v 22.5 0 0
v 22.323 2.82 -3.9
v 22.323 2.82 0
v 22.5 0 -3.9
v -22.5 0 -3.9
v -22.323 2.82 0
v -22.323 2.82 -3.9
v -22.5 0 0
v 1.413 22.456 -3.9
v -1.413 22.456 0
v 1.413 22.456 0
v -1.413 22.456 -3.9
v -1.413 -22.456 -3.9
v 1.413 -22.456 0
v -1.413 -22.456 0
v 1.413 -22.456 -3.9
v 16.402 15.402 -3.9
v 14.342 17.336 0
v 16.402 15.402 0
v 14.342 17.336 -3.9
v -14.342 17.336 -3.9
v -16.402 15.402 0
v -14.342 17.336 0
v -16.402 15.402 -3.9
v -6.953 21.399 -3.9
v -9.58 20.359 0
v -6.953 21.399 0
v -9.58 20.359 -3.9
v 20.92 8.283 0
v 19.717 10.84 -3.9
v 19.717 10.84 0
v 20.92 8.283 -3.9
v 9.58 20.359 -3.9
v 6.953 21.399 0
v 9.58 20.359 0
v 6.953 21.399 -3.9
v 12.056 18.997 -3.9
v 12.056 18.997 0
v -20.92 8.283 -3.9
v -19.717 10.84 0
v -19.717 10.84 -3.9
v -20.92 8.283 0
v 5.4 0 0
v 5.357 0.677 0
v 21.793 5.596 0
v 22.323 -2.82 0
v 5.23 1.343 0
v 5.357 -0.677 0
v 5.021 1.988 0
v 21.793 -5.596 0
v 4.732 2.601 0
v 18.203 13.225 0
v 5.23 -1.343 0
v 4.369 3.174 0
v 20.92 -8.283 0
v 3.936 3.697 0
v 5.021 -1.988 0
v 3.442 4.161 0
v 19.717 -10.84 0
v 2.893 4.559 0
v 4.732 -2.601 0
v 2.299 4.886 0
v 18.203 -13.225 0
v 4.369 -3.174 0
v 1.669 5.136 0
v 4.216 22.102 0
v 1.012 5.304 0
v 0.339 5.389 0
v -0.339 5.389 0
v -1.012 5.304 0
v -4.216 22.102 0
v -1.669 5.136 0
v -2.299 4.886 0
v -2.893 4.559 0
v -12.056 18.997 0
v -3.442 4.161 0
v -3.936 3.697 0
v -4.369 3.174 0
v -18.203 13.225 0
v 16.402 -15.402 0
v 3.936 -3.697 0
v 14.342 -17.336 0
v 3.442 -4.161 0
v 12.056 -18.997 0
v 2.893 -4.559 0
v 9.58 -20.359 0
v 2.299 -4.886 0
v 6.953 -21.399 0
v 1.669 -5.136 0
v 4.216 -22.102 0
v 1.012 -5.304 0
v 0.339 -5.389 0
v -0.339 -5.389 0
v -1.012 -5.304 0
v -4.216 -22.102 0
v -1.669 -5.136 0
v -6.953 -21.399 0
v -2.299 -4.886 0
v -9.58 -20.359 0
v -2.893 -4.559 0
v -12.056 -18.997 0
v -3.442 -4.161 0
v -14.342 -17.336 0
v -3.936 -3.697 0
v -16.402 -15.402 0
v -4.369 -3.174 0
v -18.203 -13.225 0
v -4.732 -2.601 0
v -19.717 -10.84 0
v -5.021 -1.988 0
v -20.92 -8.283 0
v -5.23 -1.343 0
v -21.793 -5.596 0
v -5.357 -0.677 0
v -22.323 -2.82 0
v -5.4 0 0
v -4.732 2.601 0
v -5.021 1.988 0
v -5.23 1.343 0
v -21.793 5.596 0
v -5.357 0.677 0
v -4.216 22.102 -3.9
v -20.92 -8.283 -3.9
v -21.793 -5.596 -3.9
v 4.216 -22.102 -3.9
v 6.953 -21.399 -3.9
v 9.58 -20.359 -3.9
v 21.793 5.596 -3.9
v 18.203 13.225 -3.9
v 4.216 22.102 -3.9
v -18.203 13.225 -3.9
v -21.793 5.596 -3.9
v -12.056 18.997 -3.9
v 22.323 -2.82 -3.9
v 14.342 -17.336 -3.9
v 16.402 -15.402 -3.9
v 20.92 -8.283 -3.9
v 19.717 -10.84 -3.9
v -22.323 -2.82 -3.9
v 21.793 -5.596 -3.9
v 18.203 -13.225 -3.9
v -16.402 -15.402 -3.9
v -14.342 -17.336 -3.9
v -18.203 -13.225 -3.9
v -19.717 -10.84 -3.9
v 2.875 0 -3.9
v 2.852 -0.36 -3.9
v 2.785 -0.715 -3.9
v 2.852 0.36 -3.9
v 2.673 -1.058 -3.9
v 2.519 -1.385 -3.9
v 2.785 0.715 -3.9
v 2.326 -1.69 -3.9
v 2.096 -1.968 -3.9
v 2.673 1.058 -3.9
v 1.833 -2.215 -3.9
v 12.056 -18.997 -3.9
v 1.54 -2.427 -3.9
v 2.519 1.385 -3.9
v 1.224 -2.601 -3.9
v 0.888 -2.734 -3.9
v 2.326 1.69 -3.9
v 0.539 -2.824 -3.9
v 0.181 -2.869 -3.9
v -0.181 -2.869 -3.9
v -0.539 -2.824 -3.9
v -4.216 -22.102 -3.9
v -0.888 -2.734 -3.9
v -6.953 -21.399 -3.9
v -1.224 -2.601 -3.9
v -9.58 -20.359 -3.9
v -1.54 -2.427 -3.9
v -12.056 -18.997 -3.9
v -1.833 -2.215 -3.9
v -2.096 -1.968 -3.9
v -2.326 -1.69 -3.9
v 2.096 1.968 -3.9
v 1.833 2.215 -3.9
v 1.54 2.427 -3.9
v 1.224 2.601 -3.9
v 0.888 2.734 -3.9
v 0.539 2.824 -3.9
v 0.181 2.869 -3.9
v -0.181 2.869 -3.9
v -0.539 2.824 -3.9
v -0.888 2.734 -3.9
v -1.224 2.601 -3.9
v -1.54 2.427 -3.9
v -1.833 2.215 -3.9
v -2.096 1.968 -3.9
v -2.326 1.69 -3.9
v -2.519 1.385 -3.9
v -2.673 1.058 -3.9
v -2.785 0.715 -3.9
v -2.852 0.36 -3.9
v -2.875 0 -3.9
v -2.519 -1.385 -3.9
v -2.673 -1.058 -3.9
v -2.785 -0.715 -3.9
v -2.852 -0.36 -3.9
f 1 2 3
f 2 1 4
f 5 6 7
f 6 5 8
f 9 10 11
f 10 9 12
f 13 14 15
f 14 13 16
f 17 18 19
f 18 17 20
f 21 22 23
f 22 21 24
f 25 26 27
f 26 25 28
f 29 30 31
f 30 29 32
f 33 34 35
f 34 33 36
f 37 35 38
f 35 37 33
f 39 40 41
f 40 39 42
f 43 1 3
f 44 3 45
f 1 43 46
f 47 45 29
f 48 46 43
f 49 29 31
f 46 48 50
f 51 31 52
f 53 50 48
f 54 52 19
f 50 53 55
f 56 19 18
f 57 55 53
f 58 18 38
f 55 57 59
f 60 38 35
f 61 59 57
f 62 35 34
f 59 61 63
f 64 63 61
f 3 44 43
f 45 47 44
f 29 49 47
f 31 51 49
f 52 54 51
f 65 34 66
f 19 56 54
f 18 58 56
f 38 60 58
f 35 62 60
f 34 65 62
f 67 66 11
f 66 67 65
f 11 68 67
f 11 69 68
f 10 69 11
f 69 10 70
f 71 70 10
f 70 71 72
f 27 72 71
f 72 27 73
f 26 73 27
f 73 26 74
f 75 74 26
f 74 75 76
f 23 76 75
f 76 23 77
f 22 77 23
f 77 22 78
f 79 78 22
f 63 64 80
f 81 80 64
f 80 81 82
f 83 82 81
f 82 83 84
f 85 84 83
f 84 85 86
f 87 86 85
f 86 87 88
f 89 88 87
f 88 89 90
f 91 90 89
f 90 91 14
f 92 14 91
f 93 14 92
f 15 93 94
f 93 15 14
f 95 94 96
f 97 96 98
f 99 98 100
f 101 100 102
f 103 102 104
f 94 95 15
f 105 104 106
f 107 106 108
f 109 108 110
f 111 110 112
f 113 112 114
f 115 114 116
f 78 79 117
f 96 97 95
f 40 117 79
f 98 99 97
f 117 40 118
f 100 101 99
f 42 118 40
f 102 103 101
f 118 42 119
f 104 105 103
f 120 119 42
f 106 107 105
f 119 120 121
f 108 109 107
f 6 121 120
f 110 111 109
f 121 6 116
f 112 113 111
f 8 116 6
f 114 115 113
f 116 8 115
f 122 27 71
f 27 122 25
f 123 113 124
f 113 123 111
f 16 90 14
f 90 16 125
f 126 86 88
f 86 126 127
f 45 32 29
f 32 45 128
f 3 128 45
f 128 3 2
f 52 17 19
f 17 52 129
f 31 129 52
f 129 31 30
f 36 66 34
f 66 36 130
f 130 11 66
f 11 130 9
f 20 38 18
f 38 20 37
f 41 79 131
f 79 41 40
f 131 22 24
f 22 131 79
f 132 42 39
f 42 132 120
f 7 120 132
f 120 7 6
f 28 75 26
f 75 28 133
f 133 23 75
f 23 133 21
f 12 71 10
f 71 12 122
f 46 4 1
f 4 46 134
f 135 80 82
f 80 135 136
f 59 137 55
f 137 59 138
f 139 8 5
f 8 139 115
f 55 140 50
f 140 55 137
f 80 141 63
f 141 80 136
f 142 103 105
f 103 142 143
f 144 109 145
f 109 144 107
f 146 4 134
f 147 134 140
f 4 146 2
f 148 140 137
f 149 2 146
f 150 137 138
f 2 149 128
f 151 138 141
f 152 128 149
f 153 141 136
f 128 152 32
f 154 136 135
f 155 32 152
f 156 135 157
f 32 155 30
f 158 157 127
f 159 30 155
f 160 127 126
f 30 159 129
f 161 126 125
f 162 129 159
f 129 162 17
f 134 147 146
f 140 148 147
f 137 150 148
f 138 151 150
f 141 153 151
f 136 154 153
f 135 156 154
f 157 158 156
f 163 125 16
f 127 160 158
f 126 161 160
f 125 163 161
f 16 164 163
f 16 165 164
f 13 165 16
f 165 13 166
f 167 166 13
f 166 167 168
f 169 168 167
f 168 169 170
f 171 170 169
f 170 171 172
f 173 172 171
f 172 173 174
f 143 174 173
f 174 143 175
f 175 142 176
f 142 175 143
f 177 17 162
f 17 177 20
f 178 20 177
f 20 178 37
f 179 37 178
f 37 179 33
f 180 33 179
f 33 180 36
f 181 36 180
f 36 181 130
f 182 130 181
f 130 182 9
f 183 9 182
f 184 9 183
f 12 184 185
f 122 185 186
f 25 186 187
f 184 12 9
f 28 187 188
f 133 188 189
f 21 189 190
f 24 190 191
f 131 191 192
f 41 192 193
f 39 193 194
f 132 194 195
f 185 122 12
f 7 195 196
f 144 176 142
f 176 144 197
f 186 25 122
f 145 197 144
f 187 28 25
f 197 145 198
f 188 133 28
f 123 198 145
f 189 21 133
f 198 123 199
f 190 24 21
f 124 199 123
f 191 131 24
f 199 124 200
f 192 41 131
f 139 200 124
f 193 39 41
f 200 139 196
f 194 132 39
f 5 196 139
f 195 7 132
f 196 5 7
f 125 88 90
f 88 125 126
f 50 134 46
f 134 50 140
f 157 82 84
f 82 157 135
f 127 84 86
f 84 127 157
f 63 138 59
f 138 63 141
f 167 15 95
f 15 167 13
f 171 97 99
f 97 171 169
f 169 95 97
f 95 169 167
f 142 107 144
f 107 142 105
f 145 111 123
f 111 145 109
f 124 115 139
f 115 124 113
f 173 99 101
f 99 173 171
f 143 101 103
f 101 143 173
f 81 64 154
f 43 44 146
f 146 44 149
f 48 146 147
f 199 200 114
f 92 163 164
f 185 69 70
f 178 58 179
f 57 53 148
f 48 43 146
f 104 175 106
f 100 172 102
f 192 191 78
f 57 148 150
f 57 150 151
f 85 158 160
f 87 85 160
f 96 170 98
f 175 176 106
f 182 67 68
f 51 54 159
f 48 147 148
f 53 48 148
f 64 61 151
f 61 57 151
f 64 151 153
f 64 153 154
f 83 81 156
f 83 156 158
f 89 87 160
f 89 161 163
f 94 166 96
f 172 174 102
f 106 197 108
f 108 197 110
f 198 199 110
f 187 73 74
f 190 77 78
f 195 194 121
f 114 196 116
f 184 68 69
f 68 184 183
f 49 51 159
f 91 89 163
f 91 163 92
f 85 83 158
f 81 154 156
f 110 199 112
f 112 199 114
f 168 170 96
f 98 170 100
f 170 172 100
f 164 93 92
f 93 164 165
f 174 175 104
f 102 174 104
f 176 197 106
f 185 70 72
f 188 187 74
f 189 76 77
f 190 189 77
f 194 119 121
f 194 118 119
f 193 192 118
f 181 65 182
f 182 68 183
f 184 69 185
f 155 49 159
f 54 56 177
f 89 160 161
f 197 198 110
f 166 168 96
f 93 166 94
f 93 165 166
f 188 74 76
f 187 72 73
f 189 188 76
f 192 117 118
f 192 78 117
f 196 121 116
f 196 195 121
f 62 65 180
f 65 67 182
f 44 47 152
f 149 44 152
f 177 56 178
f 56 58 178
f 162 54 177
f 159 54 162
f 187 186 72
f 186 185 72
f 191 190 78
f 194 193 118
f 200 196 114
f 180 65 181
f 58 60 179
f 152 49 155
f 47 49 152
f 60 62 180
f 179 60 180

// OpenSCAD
$fn = 50;


difference() {
	union() {
		translate(v = [0, 0, -3.9000000000]) {
			cylinder(h = 3.9000000000, r = 22.5000000000);
		}
		translate(v = [0, 0, -3.9000000000]) {
			cylinder(h = 3.9000000000, r = 2.8750000000);
		}
	}
	union() {
		translate(v = [0, 0, 0]) {
			rotate(a = [0, 0, 0]) {
				difference() {
					union() {
						translate(v = [0, 0, -3.9000000000]) {
							cylinder(h = 3.9000000000, r = 2.6000000000);
						}
						translate(v = [0, 0, -3.9000000000]) {
							cylinder(h = 3.9000000000, r1 = 2.8750000000, r2 = 5.4000000000);
						}
						translate(v = [0, 0, -3.9000000000]) {
							cylinder(h = 3.9000000000, r = 2.8750000000);
						}
						translate(v = [0, 0, -3.9000000000]) {
							cylinder(h = 3.9000000000, r = 2.6000000000);
						}
					}
					union();
				}
			}
		}
	}
}
